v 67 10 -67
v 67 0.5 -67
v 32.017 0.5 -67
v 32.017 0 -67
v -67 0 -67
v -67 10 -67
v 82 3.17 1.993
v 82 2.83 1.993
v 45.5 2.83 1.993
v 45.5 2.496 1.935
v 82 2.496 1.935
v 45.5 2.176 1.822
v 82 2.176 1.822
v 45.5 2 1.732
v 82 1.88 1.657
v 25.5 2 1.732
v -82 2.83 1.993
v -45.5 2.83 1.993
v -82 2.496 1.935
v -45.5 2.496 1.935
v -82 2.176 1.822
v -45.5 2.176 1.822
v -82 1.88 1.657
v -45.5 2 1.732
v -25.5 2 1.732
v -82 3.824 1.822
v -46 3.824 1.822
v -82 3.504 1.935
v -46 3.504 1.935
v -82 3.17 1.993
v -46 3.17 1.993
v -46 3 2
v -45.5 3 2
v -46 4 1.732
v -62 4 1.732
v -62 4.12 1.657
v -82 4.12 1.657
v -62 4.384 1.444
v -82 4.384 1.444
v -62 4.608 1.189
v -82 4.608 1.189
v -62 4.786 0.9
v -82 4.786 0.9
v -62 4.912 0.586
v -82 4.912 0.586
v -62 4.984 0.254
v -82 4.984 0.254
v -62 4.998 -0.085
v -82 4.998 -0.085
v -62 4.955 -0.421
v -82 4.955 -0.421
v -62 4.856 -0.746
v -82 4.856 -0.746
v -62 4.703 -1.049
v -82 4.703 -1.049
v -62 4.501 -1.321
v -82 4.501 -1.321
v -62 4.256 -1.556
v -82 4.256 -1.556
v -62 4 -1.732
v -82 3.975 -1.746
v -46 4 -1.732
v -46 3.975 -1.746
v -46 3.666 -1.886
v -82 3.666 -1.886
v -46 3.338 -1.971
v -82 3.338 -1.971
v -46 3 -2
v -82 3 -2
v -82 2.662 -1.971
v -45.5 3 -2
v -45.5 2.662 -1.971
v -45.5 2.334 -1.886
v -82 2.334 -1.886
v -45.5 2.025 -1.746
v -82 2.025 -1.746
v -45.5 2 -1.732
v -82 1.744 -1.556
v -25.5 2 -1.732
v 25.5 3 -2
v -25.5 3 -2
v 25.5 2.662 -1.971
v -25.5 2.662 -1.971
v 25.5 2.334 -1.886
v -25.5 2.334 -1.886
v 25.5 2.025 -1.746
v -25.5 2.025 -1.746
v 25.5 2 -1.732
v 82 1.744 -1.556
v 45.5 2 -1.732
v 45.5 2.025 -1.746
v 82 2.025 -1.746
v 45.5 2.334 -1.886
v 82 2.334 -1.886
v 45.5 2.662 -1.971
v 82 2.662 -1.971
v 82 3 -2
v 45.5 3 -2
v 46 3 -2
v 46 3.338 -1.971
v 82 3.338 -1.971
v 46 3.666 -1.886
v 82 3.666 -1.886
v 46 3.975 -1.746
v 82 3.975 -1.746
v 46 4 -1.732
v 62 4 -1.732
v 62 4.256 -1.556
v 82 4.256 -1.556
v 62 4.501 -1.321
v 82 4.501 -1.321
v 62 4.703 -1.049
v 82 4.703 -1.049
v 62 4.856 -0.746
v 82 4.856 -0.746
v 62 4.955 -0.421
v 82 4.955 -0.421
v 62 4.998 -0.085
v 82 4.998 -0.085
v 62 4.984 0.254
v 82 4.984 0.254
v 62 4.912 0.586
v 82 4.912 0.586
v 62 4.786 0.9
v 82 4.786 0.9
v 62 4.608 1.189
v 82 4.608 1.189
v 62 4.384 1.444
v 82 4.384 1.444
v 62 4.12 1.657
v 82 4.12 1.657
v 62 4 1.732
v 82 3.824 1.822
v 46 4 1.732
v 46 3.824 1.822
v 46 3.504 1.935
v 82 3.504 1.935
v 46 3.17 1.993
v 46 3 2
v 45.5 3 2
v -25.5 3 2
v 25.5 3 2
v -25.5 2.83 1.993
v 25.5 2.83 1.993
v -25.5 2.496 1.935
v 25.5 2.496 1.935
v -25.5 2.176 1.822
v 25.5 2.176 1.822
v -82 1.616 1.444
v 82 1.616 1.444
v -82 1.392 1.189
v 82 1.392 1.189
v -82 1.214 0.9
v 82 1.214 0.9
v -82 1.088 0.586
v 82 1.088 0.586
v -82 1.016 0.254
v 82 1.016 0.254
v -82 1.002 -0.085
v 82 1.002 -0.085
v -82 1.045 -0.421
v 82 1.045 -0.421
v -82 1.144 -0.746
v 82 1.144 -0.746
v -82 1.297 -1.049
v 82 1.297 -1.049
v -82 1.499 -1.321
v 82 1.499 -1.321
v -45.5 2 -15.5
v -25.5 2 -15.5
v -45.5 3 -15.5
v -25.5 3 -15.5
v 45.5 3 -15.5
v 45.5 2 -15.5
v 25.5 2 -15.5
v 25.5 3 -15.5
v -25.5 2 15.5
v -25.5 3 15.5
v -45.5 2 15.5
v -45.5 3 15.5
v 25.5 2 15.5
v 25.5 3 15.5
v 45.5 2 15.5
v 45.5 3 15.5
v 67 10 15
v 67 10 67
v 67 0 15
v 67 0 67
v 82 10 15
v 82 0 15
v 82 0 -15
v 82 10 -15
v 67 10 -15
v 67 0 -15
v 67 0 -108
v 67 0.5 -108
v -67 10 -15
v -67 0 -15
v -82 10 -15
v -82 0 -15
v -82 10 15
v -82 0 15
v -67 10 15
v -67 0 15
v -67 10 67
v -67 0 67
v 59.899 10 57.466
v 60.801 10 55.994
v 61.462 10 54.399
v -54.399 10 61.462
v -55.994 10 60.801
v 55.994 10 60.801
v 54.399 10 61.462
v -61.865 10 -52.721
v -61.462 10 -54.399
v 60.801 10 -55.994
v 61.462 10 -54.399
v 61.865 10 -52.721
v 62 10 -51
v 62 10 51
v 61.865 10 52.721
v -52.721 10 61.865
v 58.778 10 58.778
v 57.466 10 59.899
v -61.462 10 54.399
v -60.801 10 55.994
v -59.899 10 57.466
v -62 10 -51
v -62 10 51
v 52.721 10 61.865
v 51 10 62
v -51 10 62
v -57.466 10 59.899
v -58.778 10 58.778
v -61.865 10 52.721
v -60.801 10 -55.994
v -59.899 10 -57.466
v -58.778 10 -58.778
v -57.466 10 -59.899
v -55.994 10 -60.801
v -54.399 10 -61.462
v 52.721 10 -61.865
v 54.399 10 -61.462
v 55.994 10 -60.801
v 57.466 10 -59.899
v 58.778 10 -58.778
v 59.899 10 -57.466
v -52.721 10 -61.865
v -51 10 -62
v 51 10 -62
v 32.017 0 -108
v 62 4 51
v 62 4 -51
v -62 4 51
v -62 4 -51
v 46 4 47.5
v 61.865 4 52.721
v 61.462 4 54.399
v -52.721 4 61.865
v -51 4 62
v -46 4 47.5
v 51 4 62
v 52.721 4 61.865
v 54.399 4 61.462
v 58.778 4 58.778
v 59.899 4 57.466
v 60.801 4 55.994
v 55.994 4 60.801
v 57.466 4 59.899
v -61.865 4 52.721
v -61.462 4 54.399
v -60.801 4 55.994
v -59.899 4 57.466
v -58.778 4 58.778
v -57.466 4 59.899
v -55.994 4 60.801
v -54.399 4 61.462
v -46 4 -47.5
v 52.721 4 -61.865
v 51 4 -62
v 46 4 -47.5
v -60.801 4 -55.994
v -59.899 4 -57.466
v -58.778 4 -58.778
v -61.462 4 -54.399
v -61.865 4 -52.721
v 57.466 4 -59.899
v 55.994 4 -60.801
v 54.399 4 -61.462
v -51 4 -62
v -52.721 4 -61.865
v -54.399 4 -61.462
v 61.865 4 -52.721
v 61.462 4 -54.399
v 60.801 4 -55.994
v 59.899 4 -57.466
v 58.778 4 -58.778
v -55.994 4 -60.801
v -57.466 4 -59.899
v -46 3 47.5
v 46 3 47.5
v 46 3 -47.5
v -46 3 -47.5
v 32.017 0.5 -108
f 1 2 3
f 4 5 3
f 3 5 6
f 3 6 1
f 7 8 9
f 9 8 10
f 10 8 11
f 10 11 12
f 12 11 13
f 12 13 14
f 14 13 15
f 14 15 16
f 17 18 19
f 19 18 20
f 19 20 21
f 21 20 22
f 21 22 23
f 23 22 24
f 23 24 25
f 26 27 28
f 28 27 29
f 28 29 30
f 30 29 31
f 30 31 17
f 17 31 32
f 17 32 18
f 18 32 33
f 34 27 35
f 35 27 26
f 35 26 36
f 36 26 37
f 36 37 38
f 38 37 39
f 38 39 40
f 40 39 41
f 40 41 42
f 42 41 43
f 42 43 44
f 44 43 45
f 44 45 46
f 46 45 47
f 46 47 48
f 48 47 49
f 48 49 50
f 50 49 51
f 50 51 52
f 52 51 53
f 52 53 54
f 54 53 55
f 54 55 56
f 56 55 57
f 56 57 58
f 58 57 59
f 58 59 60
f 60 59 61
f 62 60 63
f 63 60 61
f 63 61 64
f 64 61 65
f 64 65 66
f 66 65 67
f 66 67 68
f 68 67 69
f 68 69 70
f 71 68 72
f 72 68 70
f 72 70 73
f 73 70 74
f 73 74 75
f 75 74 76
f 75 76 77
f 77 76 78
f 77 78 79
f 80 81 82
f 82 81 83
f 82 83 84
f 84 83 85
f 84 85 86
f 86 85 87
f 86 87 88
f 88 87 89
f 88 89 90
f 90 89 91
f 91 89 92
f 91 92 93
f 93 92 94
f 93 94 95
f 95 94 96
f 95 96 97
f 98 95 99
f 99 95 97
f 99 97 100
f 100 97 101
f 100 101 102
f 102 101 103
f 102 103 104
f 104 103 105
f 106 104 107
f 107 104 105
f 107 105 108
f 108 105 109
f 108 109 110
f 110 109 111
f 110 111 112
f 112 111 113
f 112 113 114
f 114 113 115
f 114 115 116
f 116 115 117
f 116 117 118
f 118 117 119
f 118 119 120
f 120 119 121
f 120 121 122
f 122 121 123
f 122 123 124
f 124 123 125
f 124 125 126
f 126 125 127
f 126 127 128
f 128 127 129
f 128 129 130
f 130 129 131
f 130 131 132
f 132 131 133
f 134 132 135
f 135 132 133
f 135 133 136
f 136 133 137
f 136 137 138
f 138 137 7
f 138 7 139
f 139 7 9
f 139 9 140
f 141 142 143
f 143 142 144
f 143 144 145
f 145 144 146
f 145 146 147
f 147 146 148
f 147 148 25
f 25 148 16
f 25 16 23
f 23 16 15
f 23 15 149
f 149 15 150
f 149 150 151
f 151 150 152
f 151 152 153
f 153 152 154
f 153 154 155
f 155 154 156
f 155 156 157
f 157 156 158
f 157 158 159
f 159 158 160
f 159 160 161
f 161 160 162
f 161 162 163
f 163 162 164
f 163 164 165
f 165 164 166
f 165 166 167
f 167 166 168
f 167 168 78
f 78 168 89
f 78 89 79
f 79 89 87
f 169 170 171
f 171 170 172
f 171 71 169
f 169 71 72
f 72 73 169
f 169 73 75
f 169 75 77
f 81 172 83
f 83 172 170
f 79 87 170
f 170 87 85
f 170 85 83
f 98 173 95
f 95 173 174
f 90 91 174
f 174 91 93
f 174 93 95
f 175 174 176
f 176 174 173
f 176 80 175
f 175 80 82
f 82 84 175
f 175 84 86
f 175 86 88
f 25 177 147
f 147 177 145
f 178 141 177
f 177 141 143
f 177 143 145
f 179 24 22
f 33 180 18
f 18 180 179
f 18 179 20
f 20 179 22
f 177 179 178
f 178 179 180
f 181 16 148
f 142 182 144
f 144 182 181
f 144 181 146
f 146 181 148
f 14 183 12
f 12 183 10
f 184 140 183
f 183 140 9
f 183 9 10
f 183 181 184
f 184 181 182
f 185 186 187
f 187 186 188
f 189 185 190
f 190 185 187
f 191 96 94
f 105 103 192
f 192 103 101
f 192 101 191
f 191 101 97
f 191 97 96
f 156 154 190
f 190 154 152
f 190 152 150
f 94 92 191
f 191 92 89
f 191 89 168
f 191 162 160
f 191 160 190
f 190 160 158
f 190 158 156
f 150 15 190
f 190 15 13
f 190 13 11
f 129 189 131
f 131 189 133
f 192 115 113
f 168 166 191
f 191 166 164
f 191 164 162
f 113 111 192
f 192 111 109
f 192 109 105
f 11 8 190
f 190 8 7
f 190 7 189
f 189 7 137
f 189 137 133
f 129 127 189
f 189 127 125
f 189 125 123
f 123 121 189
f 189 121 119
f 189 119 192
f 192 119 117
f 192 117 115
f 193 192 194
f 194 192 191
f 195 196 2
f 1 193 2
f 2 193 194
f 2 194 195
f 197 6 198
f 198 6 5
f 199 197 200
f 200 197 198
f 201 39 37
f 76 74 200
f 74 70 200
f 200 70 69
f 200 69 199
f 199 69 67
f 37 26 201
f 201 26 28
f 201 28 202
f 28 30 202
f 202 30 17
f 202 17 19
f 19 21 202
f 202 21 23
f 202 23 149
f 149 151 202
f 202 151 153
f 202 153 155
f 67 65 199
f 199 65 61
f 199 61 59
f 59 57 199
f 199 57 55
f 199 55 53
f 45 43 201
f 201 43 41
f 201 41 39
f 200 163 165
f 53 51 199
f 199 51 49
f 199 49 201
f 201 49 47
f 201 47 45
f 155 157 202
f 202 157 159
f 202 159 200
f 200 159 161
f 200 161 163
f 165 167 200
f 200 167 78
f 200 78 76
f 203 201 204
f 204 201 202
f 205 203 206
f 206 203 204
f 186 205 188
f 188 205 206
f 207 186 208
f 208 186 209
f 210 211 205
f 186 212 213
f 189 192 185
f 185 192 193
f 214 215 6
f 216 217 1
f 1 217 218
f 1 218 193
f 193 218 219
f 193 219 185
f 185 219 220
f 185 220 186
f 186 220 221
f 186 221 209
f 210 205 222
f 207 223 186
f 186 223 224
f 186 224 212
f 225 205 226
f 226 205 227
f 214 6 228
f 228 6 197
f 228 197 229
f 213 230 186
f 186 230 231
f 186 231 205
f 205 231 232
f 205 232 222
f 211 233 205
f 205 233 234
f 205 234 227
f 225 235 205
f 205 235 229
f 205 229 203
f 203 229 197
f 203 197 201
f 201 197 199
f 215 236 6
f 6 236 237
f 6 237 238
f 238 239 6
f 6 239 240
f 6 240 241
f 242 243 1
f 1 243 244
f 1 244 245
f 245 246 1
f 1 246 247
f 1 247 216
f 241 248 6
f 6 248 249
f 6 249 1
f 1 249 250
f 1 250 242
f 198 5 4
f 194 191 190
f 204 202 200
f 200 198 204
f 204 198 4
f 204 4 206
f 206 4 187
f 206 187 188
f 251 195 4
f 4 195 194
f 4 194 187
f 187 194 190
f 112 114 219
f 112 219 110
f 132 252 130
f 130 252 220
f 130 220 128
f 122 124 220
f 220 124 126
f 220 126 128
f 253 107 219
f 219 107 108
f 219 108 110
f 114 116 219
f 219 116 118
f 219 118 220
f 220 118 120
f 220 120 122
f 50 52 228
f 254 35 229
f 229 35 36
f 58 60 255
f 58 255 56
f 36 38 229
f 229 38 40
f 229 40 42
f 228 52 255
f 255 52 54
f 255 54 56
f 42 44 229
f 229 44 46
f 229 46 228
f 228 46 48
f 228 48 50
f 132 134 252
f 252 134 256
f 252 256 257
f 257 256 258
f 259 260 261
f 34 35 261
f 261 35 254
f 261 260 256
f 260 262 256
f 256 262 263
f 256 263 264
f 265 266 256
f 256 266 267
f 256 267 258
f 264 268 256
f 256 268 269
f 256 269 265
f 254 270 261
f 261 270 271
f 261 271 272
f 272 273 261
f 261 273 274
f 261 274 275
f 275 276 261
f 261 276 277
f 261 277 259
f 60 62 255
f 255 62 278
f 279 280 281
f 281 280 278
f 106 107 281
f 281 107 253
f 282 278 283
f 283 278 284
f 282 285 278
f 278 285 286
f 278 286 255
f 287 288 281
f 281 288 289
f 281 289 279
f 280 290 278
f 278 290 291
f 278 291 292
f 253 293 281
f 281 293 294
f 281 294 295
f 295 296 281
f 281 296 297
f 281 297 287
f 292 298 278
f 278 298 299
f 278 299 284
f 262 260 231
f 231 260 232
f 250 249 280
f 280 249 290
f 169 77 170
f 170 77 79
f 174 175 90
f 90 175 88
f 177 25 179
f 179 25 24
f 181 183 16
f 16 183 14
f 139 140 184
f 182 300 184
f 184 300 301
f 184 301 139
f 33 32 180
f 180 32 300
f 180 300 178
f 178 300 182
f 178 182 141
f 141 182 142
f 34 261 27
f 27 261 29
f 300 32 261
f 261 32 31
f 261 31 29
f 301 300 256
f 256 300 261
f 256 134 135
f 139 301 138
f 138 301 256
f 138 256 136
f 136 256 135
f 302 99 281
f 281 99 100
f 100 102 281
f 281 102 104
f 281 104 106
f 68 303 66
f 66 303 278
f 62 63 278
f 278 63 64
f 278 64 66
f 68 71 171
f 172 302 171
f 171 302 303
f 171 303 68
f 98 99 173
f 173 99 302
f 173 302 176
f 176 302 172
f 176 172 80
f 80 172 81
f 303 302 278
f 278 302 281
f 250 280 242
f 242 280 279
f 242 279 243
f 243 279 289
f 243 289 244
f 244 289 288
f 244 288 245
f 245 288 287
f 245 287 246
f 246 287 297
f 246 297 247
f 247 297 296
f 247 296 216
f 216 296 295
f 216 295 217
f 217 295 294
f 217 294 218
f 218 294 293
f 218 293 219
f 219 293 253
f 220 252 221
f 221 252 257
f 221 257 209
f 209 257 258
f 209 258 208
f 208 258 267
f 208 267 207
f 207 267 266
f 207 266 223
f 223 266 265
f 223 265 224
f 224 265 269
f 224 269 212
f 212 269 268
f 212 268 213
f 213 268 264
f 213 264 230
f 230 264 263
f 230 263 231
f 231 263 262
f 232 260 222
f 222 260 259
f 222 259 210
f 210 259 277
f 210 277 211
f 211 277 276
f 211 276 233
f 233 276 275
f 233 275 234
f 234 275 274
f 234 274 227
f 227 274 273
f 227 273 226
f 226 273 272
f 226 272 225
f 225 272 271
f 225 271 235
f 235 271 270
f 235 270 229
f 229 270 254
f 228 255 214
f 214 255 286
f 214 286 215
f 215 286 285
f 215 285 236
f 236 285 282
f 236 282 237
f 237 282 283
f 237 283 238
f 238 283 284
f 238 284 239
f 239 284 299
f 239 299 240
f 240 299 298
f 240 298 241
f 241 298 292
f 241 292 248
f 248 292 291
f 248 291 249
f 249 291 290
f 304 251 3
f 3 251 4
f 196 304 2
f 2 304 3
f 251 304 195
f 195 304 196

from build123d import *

# Parameters (mm, degrees)
BOSS_EXTRUDE1_DEPTH = 10
SKETCH9_R           = 2
CUT_EXTRUDE14_DEPTH = 181
SKETCH2_W           = 124
SKETCH2_H           = 124
CUT_EXTRUDE15_DEPTH = 6
SKETCH10_W          = 20
SKETCH10_H          = 31
CUT_EXTRUDE17_DEPTH = 2
SKETCH11_W          = 92
SKETCH11_H          = 95
CUT_EXTRUDE18_DEPTH = 1
FILLET3_R           = 11
SKETCH13_W          = 34.982721691
SKETCH13_H          = 0.5
BOSS_EXTRUDE3_DEPTH = 41


with BuildPart() as part:
    # Sketch1 → Boss-Extrude1 (new body)
    with BuildSketch(Plane(origin=(0, 0, 0), x_dir=(1, 0, 0), z_dir=(0, 1, 0))):
        Polygon((-67, -15), (-67, -67), (67, -67), (67, -15), (82, -15), (82, 15), (67, 15), (67, 67), (-67, 67), (-67, 15), (-82, 15), (-82, -15), align=None)
    extrude(amount=BOSS_EXTRUDE1_DEPTH)

    # Sketch9 → Cut-Extrude14 (cut)
    with BuildSketch(Plane(origin=(82, 0, 0), x_dir=(0, 0, -1), z_dir=(1, 0, 0))):
        with Locations((0, 3)):
            Circle(SKETCH9_R)
    extrude(amount=-CUT_EXTRUDE14_DEPTH, mode=Mode.SUBTRACT)

    # Sketch2 → Cut-Extrude15 (cut)
    with BuildSketch(Plane(origin=(0, 10, 0), x_dir=(1, 0, 0), z_dir=(0, 1, 0))):
        Rectangle(SKETCH2_W, SKETCH2_H)
    extrude(amount=-CUT_EXTRUDE15_DEPTH, mode=Mode.SUBTRACT)

    # Sketch10 → Cut-Extrude17 (cut)
    with BuildSketch(Plane(origin=(0, 4, 0), x_dir=(1, 0, 0), z_dir=(0, 1, 0))):
        with Locations((35.5, 0)):
            Rectangle(SKETCH10_W, SKETCH10_H)
        with Locations((-35.5, 0)):
            Rectangle(SKETCH10_W, SKETCH10_H)
    extrude(amount=-CUT_EXTRUDE17_DEPTH, mode=Mode.SUBTRACT)

    # Sketch11 → Cut-Extrude18 (cut)
    with BuildSketch(Plane(origin=(0, 4, 0), x_dir=(1, 0, 0), z_dir=(0, 1, 0))):
        Rectangle(SKETCH11_W, SKETCH11_H)
    extrude(amount=-CUT_EXTRUDE18_DEPTH, mode=Mode.SUBTRACT)

    # Fillet3
    fillet3_edges = [part.edges().sort_by_distance(p)[0] for p in [
        (62, 7, -62),
        (-62, 7, 62),
        (62, 7, 62),
        (-62, 7, -62),
    ]]
    fillet(fillet3_edges, radius=FILLET3_R)

    # Sketch13 → Boss-Extrude3 (add)
    with BuildSketch(Plane(origin=(0, 0, -67), x_dir=(-1, 0, 0), z_dir=(0, 0, -1))):
        with Locations((-49.508639155, 0.25)):
            Rectangle(SKETCH13_W, SKETCH13_H)
    extrude(amount=BOSS_EXTRUDE3_DEPTH)


solid = part.part
